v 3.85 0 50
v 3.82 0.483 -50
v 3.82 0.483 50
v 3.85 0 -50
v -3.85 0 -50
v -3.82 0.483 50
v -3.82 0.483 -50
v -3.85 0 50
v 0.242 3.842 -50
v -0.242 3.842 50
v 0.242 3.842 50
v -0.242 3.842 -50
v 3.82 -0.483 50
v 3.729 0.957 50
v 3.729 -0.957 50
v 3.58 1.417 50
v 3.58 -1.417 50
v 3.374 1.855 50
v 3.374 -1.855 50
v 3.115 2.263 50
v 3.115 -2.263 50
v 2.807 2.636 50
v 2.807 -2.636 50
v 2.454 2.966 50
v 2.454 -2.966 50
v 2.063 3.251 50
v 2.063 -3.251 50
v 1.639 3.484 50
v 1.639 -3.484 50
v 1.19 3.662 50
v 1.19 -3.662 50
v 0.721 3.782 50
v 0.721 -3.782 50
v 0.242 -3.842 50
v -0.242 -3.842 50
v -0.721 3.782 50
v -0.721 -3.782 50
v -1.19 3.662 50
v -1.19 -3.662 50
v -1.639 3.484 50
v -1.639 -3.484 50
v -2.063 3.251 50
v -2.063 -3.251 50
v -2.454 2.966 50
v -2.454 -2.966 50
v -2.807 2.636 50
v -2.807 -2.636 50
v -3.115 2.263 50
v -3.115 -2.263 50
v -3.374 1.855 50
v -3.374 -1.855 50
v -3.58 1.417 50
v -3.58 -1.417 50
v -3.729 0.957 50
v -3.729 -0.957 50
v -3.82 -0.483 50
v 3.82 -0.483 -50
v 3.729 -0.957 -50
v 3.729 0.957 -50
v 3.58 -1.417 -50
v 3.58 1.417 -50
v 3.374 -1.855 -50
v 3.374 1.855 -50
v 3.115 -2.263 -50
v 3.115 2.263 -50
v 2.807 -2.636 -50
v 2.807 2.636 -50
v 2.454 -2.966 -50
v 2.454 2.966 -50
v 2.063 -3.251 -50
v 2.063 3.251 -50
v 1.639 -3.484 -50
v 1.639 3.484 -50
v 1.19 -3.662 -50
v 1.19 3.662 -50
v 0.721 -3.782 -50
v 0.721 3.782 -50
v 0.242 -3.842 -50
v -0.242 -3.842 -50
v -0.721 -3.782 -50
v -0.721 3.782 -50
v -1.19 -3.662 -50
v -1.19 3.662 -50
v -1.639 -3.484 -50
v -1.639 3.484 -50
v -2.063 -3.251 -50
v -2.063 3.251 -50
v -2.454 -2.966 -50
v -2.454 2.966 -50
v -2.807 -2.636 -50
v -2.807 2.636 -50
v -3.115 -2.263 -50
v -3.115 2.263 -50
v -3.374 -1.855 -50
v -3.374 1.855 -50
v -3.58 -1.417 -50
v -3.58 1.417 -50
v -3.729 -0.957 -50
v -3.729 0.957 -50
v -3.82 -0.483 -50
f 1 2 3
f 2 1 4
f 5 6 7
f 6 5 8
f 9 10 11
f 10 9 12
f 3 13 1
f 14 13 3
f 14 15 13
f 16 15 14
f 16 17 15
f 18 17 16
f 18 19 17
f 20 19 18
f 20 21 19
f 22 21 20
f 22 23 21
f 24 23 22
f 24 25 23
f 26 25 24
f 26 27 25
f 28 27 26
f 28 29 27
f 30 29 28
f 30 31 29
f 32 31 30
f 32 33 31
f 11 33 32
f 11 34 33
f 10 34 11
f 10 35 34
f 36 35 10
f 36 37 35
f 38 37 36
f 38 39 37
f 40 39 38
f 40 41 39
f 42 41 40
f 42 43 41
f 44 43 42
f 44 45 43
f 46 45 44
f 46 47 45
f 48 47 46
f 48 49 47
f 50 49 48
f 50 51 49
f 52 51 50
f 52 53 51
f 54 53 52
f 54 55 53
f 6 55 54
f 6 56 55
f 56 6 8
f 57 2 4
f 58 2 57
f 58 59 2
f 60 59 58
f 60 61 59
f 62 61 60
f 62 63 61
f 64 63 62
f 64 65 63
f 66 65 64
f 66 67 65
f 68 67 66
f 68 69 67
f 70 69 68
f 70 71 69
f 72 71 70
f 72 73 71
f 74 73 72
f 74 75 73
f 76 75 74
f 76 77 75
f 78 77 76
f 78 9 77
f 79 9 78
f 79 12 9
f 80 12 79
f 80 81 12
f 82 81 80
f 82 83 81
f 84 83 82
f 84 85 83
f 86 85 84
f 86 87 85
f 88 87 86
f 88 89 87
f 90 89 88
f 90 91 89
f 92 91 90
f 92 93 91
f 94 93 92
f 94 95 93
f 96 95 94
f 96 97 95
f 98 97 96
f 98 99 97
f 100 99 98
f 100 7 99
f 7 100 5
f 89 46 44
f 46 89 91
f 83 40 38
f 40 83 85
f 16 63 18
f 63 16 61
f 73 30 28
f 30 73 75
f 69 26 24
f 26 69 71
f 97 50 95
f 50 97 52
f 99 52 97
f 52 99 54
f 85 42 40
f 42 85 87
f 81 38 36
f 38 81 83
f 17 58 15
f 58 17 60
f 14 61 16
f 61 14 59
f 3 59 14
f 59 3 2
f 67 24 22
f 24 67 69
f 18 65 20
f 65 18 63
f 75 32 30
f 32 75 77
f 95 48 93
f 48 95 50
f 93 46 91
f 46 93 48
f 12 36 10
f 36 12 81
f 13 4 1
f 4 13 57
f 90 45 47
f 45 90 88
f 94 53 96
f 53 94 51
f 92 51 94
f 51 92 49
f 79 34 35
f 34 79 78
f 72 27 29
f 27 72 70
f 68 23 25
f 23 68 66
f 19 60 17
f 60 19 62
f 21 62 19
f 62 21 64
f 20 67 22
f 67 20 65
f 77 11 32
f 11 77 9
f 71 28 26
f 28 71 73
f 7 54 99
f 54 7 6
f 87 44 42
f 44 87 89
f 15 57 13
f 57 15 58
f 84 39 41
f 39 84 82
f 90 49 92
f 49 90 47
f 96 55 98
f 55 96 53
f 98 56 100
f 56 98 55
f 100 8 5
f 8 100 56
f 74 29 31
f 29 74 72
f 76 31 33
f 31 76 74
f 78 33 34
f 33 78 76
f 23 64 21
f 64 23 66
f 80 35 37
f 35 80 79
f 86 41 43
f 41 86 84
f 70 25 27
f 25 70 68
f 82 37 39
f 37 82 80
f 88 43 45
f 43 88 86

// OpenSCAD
$fn = 50;


difference() {
	union() {
		translate(v = [0, 0, -50.0000000000]) {
			cylinder(h = 100, r = 3.8500000000);
		}
	}
	union() {
		translate(v = [0, 0, -100.0000000000]) {
			cylinder(h = 200, r = 0);
		}
	}
}
